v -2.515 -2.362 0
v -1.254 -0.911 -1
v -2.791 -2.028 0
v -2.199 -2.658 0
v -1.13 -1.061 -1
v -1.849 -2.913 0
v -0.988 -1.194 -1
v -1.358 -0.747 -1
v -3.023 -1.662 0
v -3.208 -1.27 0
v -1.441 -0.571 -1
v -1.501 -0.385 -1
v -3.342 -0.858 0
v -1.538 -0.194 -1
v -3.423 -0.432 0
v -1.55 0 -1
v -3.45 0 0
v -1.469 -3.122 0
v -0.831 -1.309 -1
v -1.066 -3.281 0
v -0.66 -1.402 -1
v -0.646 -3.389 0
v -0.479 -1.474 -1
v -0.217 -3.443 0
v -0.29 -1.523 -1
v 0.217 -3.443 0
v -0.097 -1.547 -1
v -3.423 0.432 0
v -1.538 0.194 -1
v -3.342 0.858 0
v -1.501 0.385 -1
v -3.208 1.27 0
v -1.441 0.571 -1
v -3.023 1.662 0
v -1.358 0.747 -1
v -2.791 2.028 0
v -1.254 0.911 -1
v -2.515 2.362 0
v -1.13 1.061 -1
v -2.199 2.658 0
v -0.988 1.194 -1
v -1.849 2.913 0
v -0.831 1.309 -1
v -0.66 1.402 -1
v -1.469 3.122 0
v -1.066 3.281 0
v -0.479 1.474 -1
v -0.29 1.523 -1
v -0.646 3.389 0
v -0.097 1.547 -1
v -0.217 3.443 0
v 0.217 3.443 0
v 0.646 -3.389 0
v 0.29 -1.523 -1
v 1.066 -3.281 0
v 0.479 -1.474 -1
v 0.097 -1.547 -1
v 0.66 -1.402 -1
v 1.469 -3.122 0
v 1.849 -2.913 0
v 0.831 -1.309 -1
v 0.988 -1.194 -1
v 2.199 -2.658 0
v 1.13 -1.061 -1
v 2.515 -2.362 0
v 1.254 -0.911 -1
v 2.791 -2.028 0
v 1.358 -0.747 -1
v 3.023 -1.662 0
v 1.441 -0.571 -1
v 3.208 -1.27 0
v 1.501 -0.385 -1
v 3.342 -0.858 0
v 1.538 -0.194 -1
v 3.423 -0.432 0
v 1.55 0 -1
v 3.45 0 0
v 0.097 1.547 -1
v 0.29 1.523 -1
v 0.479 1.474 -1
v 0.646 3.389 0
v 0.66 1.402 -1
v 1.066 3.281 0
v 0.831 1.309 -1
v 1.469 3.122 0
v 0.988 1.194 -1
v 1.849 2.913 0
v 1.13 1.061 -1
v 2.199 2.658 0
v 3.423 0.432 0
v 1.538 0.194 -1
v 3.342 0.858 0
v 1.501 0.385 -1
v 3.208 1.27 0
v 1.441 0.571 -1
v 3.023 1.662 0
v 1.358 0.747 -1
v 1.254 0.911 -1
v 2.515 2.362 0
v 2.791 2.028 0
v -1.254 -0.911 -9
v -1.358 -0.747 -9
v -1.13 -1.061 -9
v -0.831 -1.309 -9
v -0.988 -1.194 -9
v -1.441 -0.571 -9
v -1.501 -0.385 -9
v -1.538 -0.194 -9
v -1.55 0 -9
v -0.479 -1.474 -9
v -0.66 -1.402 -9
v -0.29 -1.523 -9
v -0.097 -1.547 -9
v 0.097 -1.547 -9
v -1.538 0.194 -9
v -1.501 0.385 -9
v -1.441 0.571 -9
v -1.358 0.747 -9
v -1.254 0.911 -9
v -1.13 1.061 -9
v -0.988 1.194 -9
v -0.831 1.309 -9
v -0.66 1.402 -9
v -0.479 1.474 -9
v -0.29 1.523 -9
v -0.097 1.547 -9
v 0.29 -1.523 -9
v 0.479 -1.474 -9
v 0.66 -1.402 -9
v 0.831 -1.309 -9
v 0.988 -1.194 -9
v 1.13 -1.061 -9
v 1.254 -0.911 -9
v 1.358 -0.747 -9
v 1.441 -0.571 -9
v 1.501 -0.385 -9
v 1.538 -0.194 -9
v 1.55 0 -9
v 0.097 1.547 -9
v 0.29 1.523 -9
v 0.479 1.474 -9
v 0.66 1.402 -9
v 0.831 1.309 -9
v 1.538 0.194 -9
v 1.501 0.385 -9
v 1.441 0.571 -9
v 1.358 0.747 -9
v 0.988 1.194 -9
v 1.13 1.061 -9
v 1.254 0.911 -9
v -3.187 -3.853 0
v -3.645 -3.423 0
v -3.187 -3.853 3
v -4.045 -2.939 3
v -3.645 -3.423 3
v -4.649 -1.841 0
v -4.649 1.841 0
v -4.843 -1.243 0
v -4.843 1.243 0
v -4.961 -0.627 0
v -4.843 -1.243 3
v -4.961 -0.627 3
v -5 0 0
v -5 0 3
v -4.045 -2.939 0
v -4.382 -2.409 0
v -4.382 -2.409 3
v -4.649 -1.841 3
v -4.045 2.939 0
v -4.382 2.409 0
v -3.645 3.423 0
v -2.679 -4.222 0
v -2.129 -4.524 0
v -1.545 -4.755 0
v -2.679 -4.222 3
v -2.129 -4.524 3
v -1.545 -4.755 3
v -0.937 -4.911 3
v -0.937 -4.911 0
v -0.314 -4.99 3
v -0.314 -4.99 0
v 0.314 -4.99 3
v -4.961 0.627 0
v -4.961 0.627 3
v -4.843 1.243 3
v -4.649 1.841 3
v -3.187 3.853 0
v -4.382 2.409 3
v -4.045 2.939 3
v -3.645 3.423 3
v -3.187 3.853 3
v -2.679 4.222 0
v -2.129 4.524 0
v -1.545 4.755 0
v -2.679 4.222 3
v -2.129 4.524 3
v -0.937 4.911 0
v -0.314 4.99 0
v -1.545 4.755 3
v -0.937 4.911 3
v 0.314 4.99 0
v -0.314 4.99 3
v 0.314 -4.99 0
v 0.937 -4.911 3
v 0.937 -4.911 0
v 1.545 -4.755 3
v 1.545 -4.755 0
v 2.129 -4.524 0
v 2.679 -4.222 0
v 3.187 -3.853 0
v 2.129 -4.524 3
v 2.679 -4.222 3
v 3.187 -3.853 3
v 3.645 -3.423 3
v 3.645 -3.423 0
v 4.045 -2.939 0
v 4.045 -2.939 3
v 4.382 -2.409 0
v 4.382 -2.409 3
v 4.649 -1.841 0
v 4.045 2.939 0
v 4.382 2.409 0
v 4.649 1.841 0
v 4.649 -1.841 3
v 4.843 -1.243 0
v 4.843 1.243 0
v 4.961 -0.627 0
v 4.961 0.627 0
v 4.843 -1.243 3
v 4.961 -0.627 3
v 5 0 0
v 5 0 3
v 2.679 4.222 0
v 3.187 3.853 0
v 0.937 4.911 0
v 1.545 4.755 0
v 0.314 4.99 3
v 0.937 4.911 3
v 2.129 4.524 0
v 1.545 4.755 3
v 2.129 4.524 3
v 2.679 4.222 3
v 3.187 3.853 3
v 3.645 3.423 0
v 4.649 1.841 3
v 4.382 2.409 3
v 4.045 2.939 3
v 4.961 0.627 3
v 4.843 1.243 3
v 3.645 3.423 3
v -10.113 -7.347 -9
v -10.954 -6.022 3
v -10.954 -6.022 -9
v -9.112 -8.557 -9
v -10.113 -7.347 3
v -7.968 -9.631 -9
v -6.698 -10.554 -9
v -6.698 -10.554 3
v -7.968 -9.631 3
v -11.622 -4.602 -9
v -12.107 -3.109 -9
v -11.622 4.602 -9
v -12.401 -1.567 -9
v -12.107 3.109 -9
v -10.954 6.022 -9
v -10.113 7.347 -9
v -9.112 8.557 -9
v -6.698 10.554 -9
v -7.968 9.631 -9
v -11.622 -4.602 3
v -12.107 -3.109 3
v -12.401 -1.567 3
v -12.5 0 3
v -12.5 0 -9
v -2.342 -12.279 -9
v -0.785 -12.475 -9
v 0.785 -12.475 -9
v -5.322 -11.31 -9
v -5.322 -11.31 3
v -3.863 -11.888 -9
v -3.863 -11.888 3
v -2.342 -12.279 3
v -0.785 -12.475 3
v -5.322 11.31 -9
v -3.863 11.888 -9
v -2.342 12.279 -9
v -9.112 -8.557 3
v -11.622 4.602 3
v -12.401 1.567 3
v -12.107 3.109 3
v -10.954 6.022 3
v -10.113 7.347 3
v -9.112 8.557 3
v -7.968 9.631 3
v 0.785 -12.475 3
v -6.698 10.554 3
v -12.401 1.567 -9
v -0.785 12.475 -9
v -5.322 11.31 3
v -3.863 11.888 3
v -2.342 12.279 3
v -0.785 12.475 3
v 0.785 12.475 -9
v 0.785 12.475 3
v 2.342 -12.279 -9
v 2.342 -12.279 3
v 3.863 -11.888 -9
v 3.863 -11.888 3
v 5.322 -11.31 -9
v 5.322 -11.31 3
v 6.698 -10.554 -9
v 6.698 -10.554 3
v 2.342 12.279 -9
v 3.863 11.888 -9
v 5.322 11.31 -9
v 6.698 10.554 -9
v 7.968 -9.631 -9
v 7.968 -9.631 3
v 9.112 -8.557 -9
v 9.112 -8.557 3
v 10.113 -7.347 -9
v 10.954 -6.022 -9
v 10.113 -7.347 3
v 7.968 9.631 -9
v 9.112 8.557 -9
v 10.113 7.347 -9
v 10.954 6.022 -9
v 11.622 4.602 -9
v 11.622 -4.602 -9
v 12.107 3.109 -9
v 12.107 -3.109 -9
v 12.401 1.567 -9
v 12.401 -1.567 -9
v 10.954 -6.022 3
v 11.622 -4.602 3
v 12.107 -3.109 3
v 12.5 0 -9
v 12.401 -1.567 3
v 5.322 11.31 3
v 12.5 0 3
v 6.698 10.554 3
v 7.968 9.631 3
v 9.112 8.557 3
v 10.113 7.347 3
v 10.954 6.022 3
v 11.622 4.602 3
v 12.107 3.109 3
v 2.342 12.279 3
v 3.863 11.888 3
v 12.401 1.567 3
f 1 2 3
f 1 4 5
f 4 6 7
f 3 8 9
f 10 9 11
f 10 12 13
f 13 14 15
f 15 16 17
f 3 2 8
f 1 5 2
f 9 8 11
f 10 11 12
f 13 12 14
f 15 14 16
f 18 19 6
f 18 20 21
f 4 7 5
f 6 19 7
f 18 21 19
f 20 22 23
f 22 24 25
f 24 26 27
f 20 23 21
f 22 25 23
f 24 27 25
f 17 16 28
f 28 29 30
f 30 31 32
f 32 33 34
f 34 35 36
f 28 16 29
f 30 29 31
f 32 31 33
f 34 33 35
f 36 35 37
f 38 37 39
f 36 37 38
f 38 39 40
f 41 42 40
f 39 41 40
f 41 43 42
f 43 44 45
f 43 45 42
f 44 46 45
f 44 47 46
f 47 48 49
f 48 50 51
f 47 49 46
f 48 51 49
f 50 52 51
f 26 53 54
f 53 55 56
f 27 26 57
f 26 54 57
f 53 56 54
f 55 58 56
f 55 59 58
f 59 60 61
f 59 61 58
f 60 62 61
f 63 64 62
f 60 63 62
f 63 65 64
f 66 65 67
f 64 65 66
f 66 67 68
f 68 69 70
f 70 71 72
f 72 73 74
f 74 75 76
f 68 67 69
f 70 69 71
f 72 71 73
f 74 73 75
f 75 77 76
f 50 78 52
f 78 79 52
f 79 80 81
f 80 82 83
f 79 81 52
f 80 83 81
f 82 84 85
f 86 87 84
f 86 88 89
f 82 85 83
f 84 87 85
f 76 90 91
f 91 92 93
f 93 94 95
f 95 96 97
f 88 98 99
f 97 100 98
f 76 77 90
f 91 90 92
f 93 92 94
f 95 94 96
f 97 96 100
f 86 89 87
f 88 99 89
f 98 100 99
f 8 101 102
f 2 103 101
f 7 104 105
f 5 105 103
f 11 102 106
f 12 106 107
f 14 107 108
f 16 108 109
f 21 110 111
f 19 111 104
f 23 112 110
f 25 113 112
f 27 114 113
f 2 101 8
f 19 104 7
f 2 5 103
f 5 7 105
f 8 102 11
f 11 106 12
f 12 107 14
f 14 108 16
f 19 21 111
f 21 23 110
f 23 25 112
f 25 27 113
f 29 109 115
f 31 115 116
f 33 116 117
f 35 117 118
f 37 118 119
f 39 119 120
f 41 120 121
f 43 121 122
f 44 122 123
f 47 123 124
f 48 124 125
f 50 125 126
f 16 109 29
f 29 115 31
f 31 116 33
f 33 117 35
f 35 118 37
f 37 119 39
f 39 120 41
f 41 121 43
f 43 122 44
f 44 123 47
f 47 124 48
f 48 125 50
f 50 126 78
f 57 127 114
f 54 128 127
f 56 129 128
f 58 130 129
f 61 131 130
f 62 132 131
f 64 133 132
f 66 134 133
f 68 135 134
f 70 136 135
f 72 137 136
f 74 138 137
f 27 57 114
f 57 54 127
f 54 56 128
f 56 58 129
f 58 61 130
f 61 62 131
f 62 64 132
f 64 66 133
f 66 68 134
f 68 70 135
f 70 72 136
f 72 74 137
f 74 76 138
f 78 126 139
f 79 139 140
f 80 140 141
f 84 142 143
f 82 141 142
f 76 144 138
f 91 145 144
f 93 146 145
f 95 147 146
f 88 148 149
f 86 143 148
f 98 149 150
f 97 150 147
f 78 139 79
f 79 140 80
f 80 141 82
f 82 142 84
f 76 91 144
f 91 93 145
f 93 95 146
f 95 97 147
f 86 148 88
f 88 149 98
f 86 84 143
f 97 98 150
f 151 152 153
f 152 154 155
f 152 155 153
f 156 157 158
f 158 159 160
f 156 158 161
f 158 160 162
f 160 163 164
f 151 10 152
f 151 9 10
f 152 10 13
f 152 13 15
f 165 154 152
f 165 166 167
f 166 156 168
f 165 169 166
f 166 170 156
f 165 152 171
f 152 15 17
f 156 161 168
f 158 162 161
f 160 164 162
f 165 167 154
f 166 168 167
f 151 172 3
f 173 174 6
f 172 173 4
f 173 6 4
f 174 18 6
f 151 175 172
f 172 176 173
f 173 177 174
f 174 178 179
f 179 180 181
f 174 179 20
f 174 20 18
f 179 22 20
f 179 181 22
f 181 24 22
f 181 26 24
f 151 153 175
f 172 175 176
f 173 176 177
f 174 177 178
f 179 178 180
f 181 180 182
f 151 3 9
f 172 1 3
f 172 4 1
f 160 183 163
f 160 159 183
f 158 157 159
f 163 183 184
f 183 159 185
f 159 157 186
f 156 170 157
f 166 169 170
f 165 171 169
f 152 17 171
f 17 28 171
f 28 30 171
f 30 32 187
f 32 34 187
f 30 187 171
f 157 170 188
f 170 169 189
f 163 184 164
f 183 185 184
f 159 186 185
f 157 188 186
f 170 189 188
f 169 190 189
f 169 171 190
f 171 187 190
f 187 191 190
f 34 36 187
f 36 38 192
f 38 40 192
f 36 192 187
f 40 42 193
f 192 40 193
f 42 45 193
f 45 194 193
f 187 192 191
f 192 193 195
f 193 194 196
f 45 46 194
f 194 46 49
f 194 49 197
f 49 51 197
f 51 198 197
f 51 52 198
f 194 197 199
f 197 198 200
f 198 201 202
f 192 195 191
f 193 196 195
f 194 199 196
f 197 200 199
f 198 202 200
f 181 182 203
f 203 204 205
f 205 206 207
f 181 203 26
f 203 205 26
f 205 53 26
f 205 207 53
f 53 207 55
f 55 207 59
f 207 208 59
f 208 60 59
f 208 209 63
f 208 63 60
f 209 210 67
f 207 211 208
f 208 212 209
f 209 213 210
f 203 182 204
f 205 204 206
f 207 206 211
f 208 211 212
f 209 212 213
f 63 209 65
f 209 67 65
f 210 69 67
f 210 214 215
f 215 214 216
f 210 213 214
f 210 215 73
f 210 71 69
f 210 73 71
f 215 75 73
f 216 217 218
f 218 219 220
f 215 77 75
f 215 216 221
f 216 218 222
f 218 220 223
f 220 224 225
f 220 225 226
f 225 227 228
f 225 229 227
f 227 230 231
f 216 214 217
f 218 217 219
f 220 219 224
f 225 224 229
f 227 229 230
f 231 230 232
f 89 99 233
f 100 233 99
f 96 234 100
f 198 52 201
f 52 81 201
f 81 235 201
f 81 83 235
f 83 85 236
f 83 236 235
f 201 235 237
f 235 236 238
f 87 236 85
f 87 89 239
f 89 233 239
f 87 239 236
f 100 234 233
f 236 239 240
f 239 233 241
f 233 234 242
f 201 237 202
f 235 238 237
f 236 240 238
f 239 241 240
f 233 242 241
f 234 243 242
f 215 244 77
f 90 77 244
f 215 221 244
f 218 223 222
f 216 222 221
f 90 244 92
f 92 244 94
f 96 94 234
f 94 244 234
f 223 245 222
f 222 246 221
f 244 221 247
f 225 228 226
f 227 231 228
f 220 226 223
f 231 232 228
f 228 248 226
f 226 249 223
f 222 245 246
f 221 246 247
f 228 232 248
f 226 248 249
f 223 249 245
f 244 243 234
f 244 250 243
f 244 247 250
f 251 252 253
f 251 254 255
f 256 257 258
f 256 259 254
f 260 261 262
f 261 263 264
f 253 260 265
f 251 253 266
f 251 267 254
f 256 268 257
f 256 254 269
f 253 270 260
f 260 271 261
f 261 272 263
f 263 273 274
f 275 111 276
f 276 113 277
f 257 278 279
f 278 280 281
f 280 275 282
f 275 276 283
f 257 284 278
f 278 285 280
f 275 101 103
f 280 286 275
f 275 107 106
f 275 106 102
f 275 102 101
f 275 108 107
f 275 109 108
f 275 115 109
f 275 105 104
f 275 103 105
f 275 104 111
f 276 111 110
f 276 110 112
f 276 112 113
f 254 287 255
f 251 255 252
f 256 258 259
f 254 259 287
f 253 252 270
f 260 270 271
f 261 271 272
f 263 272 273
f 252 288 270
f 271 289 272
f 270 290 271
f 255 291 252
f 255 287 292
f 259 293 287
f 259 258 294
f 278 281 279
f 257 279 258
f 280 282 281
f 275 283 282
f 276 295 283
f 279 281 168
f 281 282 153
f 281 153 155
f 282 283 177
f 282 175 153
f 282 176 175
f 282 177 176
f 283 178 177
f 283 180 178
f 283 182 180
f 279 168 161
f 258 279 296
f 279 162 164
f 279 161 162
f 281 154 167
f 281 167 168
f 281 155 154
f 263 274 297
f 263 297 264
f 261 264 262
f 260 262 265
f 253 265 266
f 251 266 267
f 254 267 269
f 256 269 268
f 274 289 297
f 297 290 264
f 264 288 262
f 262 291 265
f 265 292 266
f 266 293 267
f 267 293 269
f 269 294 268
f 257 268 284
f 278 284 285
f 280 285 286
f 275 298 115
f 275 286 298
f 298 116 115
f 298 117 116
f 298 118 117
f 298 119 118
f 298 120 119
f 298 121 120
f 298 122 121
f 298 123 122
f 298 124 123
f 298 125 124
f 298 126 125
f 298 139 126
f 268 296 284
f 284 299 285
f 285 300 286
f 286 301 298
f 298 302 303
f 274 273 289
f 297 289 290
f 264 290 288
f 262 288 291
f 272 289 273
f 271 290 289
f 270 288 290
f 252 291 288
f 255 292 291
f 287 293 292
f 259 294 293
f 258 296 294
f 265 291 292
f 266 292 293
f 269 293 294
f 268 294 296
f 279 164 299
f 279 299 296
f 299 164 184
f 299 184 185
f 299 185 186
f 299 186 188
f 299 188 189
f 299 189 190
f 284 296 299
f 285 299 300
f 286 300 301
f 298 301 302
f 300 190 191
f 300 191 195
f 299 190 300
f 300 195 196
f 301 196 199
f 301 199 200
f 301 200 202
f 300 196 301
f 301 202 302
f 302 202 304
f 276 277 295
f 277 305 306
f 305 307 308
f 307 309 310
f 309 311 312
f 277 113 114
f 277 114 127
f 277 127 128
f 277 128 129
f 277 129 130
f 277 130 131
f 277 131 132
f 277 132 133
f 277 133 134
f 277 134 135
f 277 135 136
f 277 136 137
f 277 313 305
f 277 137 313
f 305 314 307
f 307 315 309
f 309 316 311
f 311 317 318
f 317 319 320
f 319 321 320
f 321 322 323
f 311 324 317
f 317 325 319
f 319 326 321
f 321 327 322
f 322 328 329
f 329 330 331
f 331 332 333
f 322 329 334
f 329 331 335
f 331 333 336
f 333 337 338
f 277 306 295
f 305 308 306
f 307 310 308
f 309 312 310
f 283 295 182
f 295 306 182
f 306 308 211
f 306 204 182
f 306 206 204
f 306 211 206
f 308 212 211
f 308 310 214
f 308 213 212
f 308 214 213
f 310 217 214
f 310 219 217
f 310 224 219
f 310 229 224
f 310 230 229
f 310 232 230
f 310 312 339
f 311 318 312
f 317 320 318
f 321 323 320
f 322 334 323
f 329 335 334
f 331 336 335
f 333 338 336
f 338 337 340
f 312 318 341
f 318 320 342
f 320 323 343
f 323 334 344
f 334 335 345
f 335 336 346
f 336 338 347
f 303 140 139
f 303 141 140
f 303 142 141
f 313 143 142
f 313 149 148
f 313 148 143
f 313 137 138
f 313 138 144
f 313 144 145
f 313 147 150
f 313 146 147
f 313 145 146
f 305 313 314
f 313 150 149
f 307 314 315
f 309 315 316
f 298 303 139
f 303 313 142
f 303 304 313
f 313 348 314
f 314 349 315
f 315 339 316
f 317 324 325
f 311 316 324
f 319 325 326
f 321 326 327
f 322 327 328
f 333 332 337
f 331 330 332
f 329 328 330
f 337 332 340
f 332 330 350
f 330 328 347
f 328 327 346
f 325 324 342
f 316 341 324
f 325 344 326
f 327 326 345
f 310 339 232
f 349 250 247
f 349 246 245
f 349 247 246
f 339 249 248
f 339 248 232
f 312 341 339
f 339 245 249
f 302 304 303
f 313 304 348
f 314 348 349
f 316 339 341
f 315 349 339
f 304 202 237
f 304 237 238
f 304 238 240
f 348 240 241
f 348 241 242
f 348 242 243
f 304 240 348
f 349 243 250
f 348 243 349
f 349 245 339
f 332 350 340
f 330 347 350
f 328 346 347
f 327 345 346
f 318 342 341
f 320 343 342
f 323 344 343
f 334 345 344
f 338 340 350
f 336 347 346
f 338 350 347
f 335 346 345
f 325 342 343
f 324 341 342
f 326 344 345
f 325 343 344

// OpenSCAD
$fn = 50;

difference() {
	union() {
		translate(v = [0, 0, -9.0]) {
			cylinder(h = 12, r = 12.5);
		}
	}
	union() {
		translate(v = [0, 0, 0]) {
			rotate(a = [0, 0, 0]) {
				difference() {
					union() {
						translate(v = [0, 0, -12.0]) {
							cylinder(h = 12, r = 1.25);
						}
						translate(v = [0, 0, -1.0]) {
							cylinder(h = 1.0, r1 = 1.55, r2 = 3.45);
						}
						translate(v = [0, 0, -12.0]) {
							cylinder(h = 12, r = 1.55);
						}
						translate(v = [0, 0, -12.0]) {
							cylinder(h = 12, r = 1.25);
						}
					}
					union();
				}
			}
		}
		#cylinder(h = 3, r = 5.0);
	}
}
